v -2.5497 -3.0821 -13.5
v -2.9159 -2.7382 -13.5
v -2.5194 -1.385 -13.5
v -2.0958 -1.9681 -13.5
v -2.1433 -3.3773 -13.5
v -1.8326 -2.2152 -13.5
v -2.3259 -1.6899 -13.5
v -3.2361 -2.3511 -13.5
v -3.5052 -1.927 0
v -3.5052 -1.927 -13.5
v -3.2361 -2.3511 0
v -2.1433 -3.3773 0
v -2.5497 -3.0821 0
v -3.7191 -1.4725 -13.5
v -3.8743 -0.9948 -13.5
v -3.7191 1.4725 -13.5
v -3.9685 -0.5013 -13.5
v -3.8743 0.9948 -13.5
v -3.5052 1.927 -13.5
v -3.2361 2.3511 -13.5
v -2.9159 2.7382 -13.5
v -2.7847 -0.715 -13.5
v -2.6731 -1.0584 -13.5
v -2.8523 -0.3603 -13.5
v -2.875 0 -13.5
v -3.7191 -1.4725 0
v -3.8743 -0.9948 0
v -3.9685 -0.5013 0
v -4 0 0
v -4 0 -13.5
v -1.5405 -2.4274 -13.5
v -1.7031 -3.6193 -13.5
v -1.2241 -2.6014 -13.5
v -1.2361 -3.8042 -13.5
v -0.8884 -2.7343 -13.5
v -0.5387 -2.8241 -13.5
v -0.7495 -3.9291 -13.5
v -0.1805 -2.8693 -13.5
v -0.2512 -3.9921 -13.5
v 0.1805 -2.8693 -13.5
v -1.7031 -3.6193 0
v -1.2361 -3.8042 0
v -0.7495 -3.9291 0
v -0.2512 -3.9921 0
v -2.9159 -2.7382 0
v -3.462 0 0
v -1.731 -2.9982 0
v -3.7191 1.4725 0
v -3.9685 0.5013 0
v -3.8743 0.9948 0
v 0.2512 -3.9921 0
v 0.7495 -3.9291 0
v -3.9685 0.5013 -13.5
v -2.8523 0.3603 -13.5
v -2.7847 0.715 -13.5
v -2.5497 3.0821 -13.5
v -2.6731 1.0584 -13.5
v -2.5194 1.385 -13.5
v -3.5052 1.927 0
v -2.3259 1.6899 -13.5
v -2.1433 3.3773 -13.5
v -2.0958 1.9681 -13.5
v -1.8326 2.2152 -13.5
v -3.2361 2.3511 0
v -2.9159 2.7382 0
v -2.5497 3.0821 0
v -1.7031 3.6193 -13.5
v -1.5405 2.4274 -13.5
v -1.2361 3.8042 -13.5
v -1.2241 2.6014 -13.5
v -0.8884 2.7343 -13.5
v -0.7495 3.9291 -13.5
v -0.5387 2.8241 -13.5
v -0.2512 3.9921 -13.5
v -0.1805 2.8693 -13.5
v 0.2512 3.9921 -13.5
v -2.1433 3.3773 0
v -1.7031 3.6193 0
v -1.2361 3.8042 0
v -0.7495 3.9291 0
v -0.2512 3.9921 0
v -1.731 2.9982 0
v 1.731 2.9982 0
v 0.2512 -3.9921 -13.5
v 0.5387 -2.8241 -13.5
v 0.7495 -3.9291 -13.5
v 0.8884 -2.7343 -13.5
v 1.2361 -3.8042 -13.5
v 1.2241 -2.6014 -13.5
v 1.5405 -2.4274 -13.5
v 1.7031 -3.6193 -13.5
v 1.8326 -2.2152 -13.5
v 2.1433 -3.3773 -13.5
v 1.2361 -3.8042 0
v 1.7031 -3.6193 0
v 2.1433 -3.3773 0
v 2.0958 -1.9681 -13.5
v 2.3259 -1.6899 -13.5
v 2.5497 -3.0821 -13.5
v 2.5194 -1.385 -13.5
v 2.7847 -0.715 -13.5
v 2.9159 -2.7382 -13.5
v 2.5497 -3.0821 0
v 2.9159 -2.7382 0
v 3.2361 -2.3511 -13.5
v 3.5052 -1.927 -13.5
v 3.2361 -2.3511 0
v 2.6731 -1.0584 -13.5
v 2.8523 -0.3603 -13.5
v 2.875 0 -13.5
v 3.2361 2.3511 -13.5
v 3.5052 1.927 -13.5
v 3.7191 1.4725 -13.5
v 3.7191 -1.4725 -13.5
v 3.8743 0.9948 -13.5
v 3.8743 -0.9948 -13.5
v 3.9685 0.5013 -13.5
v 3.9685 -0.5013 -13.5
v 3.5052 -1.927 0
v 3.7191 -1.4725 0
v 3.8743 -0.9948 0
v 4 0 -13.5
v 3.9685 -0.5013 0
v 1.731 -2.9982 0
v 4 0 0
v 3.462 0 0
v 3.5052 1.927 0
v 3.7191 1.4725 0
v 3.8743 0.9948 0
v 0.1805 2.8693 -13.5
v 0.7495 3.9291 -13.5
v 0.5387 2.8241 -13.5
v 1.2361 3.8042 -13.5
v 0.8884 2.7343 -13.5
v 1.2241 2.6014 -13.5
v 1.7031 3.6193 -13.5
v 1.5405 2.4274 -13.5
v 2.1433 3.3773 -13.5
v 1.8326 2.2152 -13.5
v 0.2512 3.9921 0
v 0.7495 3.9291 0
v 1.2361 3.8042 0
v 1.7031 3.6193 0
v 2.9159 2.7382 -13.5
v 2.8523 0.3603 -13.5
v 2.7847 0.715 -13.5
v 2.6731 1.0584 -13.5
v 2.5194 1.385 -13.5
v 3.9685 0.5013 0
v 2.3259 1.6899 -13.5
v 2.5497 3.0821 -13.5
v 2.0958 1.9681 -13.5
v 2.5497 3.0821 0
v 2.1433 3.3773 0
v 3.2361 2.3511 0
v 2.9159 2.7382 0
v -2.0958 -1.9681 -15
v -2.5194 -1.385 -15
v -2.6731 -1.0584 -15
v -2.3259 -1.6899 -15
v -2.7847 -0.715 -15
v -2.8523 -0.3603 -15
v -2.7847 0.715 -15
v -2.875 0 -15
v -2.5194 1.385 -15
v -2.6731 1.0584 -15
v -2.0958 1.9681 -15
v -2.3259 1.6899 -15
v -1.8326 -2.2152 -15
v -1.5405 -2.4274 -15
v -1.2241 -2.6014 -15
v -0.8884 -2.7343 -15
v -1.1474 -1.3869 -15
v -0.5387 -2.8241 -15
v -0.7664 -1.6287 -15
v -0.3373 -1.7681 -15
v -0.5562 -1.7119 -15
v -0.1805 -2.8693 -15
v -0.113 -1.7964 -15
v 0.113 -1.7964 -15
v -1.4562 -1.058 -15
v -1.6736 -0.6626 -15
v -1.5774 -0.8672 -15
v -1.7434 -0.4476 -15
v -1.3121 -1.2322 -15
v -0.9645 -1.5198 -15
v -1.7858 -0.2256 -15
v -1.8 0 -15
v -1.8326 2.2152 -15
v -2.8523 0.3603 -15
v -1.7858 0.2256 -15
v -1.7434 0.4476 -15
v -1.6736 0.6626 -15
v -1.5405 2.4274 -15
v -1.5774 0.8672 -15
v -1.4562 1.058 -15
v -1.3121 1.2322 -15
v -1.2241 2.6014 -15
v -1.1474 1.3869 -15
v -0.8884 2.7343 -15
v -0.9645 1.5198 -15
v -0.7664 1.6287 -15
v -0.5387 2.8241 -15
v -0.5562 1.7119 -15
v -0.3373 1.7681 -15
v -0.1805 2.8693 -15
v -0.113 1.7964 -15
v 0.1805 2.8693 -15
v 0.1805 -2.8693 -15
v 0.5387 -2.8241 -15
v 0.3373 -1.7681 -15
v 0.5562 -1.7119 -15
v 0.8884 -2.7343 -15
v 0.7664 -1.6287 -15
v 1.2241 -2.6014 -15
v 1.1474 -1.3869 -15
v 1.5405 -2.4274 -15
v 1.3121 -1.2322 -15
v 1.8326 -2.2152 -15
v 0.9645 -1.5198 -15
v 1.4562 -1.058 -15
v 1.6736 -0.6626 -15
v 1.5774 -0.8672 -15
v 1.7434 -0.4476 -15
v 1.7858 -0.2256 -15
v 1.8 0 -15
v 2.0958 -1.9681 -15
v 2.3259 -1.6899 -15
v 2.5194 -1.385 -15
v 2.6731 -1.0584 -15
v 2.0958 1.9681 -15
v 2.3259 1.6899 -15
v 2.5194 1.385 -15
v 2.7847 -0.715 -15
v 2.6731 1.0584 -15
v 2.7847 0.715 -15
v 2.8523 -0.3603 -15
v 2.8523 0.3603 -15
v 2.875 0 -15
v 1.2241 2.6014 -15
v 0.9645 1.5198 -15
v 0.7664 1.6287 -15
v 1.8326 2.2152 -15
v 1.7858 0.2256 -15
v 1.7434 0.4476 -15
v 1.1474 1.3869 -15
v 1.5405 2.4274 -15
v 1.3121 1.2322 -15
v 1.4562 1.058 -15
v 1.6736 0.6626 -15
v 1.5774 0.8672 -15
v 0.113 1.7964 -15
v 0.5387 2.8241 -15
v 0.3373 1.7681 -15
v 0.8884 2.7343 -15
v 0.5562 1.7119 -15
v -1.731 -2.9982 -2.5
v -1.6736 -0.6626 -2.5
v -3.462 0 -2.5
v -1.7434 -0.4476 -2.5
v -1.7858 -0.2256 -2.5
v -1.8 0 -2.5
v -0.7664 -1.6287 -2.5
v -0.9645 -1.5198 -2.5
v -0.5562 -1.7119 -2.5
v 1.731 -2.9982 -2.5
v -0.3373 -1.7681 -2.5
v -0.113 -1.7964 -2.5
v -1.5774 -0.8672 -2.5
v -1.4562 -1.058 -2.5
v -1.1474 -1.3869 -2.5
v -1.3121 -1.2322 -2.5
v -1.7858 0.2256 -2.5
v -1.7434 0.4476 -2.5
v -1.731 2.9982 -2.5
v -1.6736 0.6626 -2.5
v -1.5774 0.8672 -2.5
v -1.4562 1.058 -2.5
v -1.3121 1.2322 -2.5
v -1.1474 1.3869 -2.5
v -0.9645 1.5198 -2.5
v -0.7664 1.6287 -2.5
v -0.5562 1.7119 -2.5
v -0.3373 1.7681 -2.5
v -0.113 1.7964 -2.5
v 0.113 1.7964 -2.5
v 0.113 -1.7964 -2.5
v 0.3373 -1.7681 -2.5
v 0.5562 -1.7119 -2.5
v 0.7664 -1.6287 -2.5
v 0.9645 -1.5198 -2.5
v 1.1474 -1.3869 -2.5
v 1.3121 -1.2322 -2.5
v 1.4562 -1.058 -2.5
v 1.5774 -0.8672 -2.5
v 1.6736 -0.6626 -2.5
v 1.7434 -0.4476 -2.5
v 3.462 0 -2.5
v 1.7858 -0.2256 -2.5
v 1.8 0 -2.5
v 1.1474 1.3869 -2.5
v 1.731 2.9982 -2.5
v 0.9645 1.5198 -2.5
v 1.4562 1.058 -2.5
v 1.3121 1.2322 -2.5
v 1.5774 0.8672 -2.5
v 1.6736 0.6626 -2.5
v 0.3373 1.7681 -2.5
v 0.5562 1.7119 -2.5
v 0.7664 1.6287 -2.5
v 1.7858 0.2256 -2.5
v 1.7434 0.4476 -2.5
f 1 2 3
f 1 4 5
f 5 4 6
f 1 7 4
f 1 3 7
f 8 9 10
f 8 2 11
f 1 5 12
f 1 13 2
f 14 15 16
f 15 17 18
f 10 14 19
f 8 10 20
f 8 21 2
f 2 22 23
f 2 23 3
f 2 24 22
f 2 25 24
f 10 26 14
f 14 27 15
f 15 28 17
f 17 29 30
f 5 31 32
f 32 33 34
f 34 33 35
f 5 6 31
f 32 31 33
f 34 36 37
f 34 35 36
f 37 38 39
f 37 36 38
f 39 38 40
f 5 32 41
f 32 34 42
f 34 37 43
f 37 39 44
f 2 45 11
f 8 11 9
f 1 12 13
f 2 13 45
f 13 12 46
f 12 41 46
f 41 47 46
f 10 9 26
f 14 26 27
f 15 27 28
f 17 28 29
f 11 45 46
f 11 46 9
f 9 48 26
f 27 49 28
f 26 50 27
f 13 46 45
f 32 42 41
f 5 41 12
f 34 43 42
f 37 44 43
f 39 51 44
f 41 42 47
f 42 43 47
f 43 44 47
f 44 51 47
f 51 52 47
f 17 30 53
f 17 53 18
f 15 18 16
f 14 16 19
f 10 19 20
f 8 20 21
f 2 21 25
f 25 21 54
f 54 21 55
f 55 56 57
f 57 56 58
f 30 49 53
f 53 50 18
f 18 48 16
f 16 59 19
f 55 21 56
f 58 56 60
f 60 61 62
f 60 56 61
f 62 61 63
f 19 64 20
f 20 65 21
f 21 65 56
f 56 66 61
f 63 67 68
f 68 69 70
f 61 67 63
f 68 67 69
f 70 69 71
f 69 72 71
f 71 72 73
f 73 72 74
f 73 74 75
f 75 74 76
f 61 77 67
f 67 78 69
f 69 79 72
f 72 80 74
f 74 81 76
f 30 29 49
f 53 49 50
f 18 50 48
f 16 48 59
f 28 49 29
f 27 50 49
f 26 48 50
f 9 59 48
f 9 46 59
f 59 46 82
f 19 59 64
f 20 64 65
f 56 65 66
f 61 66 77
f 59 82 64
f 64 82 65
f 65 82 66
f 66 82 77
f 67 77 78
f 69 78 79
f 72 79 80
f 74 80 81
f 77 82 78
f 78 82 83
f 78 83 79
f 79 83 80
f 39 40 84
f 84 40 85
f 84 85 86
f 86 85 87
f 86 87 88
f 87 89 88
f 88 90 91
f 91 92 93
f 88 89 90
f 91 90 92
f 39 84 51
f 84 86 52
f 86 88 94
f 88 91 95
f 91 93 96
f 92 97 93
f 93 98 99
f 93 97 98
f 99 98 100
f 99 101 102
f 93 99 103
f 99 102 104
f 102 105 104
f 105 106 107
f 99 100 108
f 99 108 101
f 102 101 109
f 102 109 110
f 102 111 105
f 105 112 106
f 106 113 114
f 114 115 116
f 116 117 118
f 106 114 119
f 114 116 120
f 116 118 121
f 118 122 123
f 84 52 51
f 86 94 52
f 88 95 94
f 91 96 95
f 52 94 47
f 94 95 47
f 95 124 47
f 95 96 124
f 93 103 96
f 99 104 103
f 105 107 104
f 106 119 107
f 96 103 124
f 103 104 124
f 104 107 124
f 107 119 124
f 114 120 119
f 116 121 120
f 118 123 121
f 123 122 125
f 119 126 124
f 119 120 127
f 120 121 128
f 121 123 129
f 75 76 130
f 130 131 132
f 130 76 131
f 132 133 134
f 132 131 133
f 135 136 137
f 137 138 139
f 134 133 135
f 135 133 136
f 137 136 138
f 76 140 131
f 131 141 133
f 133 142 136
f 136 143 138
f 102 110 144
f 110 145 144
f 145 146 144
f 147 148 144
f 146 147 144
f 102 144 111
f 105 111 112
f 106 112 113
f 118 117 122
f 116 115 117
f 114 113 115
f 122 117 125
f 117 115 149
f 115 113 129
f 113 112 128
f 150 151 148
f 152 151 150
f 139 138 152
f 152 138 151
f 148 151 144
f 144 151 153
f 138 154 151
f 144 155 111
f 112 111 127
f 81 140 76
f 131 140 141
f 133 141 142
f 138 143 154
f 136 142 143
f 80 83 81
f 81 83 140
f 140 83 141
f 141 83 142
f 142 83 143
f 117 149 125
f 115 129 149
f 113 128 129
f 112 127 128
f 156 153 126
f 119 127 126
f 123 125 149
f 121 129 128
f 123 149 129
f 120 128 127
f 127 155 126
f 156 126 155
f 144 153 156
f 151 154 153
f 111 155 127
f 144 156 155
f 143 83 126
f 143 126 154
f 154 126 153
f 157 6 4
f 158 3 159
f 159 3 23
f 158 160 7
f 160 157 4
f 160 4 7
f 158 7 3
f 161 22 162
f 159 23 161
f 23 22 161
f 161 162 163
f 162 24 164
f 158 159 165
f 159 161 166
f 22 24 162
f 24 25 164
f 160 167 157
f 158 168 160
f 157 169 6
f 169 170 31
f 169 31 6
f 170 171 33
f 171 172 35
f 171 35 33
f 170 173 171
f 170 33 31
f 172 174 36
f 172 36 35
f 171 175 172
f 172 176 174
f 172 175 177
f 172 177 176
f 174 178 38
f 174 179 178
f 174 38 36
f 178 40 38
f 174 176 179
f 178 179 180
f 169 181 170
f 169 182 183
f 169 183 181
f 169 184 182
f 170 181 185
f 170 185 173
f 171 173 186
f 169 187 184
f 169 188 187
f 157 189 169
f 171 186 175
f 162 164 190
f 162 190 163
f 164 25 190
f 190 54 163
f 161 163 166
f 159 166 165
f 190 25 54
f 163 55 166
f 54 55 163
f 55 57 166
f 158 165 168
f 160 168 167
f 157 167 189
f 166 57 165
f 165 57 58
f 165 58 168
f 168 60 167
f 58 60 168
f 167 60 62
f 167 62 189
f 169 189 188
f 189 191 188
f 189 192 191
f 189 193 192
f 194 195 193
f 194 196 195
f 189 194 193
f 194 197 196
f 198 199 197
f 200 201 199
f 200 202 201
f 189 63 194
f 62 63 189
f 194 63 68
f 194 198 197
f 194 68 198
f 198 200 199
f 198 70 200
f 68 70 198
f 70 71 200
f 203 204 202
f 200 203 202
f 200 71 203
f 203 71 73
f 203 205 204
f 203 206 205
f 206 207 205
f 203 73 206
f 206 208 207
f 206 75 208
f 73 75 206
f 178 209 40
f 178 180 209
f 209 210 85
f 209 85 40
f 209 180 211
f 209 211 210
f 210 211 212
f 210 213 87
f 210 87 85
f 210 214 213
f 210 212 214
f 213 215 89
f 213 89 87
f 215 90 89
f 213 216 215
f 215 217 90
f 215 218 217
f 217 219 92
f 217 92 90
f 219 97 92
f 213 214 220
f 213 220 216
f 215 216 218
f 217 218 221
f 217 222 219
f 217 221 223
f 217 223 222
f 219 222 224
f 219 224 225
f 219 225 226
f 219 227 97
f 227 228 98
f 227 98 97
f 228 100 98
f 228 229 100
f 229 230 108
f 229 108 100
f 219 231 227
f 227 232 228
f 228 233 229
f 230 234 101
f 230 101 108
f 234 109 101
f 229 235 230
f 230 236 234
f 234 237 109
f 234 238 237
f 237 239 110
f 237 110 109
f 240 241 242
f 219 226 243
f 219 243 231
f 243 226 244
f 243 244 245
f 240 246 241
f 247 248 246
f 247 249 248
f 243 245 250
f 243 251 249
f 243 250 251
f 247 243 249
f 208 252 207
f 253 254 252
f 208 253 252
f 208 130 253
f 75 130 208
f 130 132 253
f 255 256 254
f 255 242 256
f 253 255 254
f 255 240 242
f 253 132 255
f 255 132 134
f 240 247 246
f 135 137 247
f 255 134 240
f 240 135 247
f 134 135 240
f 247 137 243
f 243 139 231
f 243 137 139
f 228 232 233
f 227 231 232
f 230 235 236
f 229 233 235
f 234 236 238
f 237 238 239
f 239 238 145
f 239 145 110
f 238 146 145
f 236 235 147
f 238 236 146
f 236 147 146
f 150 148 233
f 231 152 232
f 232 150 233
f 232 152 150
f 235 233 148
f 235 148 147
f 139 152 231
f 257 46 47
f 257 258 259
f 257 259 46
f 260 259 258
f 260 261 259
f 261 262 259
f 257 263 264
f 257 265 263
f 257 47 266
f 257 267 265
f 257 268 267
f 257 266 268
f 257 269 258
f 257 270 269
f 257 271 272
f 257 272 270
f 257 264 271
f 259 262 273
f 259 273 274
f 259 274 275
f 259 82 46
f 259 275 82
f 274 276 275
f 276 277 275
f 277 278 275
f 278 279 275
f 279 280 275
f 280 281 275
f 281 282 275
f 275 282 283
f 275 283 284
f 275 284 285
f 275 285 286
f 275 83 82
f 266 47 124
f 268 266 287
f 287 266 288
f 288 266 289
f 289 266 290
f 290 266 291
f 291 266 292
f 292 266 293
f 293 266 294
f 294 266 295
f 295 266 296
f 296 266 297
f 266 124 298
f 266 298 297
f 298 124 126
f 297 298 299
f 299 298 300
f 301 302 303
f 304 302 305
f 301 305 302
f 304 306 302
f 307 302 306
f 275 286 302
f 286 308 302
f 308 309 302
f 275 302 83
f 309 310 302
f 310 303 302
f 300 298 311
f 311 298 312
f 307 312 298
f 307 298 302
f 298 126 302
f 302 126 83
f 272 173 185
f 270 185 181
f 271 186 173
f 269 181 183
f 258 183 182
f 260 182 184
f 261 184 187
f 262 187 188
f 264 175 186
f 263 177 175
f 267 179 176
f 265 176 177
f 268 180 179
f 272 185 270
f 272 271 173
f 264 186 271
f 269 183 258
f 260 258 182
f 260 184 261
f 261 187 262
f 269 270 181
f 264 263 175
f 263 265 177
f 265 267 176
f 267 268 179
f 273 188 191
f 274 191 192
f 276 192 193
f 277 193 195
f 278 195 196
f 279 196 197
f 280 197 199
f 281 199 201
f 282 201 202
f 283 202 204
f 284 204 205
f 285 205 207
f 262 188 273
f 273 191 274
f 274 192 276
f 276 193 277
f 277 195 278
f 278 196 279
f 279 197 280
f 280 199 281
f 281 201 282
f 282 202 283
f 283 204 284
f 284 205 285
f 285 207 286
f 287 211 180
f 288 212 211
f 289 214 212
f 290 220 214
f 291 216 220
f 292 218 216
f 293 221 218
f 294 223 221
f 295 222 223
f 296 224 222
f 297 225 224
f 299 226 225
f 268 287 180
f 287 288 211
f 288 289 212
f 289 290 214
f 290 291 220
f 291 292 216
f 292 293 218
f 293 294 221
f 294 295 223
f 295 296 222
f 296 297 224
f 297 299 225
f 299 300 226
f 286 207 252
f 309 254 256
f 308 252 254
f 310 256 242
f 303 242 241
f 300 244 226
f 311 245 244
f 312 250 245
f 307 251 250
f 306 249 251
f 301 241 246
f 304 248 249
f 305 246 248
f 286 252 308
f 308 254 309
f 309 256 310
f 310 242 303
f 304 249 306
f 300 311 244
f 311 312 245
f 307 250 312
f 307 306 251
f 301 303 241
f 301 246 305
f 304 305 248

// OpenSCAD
$fn = 50;

difference() {
	union() {
		translate(v = [0, 0, -13.5]) {
			cylinder(h = 13.5, r = 4.0);
		}
		#translate(v = [0, 0, -15.0]) {
			cylinder(h = 15, r = 2.875);
		}
	}
	union() {
		translate(v = [0, 0, 0]) {
			rotate(a = [0, 0, 0]) {
				difference() {
					union() {
						translate(v = [0, 0, -2.5]) {
							linear_extrude(height = 2.5) {
								polygon(points = [[3.4619999999999997, 0.0], [1.7310000000000003, 2.9981799479017264], [-1.7309999999999992, 2.9981799479017264], [-3.4619999999999997, 4.2397272186481365e-16], [-1.7310000000000014, -2.998179947901726], [1.7309999999999977, -2.9981799479017277]]);
							}
						}
					}
					union();
				}
			}
		}
		#translate(v = [0, 0, -100.0]) {
			cylinder(h = 200, r = 1.8);
		}
	}
}
